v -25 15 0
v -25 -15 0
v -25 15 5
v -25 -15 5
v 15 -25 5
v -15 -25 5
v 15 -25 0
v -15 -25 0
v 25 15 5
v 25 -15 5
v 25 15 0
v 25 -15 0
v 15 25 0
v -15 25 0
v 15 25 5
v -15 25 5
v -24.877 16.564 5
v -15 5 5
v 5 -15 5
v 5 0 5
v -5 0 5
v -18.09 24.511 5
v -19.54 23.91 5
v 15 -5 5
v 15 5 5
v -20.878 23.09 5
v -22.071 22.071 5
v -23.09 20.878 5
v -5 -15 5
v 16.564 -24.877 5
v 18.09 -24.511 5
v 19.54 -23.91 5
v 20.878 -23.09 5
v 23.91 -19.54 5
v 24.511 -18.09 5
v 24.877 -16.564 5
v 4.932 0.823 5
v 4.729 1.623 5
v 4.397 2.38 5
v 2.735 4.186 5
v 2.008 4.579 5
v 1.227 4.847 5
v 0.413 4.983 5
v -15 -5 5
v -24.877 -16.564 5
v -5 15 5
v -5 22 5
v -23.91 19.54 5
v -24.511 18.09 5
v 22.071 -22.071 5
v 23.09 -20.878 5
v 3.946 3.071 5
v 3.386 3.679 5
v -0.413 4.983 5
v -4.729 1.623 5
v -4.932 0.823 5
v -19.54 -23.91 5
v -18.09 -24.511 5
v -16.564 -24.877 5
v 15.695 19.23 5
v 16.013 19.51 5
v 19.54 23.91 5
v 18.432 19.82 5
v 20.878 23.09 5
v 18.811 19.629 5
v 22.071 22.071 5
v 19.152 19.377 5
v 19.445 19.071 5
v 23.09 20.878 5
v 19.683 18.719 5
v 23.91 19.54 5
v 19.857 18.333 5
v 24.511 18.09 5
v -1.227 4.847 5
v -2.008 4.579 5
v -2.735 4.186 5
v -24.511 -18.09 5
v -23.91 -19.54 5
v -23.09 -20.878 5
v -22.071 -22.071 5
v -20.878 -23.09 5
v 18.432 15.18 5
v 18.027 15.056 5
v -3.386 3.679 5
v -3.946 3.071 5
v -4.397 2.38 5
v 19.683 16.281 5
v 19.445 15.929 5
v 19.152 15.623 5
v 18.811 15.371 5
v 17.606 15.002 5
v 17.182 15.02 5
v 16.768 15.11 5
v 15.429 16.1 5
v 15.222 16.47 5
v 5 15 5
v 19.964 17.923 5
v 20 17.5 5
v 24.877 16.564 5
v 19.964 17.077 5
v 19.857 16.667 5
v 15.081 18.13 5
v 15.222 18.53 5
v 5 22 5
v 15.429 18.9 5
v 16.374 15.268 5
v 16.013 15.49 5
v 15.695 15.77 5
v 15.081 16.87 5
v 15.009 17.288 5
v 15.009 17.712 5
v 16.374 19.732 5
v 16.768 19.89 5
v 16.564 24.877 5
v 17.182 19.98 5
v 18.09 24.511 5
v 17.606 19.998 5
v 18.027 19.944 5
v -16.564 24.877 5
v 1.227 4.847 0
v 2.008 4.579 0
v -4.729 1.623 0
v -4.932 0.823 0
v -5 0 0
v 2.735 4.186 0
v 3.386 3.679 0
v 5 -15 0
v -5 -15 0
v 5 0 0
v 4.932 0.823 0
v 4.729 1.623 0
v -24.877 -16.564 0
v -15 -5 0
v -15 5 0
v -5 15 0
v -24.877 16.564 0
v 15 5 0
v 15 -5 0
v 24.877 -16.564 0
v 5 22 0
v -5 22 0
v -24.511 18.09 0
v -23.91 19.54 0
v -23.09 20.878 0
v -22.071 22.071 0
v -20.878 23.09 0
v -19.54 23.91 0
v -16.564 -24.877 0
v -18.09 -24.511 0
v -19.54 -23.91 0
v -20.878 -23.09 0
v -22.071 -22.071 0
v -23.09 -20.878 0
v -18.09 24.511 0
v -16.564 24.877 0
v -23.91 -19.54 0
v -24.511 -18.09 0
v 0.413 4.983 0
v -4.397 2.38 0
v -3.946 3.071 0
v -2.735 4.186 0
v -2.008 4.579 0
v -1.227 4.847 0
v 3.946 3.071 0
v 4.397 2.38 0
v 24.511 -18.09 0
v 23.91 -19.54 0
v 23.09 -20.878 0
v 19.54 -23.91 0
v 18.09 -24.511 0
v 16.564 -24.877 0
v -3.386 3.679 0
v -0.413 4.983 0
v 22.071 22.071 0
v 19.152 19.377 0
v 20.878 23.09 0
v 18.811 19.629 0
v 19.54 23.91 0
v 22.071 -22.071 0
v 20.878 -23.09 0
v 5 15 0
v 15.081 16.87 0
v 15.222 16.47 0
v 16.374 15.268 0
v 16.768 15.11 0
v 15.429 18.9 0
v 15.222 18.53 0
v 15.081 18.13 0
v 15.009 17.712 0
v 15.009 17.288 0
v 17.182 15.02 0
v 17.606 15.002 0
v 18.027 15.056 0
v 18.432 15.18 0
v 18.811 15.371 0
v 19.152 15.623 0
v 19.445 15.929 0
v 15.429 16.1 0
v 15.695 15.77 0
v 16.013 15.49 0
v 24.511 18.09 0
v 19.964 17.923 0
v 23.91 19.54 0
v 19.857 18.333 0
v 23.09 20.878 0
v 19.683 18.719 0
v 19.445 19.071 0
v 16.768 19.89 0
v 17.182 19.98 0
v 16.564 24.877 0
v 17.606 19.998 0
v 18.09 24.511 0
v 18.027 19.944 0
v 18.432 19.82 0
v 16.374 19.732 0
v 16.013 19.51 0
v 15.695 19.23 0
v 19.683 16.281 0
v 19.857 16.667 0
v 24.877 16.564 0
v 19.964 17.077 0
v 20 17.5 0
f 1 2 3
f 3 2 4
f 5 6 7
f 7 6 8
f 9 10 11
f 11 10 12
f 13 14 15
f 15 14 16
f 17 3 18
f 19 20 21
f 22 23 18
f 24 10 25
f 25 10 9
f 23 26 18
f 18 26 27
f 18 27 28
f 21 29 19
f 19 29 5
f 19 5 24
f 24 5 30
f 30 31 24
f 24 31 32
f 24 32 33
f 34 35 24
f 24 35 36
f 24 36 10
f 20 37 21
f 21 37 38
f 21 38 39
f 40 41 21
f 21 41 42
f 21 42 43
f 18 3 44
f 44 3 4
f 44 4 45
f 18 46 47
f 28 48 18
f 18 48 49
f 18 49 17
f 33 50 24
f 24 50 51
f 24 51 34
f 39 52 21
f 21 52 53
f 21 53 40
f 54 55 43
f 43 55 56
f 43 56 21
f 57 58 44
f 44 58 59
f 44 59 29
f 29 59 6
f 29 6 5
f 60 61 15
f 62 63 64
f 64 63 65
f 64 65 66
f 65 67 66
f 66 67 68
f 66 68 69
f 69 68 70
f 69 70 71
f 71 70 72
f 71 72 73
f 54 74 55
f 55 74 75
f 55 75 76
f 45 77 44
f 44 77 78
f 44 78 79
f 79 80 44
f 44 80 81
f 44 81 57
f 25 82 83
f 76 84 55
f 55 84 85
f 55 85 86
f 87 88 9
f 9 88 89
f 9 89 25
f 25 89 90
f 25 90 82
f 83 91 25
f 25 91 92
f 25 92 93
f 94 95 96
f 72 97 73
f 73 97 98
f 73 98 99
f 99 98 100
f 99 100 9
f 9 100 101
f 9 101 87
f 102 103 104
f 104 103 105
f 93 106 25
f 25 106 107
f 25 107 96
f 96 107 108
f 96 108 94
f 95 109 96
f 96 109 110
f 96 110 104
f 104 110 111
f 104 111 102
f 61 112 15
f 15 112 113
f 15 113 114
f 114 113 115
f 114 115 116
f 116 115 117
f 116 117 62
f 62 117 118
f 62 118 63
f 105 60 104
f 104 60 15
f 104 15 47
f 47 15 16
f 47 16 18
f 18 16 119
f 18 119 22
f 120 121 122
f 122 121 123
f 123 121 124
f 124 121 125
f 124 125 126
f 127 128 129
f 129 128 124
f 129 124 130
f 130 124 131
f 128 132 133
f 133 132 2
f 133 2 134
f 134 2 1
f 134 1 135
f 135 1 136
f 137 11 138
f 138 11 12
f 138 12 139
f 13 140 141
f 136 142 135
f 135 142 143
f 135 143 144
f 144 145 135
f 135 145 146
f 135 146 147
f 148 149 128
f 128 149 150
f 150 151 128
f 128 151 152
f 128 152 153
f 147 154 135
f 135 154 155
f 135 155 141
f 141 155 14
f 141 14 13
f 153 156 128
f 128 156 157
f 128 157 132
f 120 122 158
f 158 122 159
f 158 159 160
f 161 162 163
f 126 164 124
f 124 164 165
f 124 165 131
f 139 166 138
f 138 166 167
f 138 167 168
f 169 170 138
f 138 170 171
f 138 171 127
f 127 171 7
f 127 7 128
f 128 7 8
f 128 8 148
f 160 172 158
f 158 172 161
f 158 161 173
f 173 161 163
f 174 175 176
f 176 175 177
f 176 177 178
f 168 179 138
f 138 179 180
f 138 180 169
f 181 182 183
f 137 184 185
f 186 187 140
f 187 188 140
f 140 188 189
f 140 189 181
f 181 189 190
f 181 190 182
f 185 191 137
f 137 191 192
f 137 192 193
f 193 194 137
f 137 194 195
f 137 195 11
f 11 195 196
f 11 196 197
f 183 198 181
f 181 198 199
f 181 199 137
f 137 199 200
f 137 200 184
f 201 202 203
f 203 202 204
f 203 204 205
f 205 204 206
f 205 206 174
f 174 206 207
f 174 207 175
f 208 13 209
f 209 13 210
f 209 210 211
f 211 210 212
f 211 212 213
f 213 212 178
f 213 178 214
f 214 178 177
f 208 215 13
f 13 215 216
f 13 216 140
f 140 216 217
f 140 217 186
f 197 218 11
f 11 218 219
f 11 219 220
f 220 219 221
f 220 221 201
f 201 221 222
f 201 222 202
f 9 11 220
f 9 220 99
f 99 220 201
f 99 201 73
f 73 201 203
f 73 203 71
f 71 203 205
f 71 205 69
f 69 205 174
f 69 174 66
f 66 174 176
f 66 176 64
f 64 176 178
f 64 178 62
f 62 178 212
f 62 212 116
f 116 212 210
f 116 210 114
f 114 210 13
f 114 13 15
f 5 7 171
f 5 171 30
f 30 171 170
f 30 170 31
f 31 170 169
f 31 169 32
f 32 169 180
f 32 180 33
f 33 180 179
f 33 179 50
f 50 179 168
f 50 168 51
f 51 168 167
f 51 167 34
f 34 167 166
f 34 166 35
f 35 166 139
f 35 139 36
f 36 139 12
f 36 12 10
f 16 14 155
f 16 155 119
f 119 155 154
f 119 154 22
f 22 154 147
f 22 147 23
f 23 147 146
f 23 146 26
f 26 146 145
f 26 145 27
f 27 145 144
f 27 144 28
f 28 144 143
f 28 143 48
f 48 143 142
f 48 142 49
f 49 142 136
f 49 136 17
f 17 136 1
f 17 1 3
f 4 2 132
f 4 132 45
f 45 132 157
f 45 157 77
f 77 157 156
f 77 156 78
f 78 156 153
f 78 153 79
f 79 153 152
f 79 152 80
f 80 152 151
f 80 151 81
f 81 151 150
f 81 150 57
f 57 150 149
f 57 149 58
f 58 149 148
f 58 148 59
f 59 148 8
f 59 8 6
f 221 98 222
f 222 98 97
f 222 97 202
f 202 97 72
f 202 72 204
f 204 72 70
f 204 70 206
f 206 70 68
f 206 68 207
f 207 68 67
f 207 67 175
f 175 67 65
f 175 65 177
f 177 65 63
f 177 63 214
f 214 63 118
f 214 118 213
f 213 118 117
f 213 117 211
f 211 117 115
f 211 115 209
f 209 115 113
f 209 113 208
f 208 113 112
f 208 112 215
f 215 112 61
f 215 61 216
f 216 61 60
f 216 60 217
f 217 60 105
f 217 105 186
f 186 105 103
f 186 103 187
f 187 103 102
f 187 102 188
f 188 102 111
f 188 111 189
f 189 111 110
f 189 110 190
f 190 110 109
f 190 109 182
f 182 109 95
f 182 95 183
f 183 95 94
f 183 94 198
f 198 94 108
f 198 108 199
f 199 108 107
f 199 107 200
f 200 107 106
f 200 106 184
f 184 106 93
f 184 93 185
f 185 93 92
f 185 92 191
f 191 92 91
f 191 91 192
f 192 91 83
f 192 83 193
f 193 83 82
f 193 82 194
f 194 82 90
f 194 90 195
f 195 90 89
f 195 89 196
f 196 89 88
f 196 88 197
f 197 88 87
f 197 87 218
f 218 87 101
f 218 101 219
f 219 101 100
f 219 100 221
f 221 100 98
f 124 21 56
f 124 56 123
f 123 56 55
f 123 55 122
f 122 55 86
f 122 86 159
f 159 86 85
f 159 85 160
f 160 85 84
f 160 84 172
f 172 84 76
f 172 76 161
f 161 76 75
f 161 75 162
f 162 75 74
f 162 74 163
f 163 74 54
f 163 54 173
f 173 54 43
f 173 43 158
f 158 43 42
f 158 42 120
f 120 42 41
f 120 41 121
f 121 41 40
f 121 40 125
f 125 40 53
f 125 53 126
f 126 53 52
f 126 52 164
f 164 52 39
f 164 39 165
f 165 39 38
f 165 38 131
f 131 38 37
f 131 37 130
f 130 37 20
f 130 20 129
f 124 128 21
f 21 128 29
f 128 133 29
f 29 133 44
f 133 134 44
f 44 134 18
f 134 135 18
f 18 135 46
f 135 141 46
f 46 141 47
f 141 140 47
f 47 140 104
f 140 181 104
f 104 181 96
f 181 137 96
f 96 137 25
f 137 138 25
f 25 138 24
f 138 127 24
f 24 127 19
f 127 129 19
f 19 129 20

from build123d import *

# Parameters (mm, degrees)
SKETCH2_W           = 50
SKETCH2_H           = 50
BOSS_EXTRUDE1_DEPTH = 5
FILLET1_R           = 10
SKETCH3_R           = 2.5
CUT_EXTRUDE1_DEPTH  = 6


with BuildPart() as part:
    # Sketch2 → Boss-Extrude1 (new body)
    with BuildSketch(Plane.XY):
        Rectangle(SKETCH2_W, SKETCH2_H)
    extrude(amount=BOSS_EXTRUDE1_DEPTH)

    # Fillet1
    fillet1_edges = [part.edges().sort_by_distance(p)[0] for p in [
        (-25, 25, 2.5),
        (25, 25, 2.5),
        (25, -25, 2.5),
        (-25, -25, 2.5),
    ]]
    fillet(fillet1_edges, radius=FILLET1_R)

    # Sketch3 → Cut-Extrude1 (cut, through all)
    with BuildSketch(Plane.XY.offset(5)):
        with Locations((17.5, 17.5)):
            Circle(SKETCH3_R)
        with BuildLine():
            Line((-5, 0), (-5, -15))
            Line((-5, -15), (-15, -5))
            Line((-15, -5), (-15, 5))
            Line((-15, 5), (-5, 15))
            Line((-5, 15), (-5, 22))
            Line((-5, 22), (5, 22))
            Line((5, 22), (5, 15))
            Line((5, 15), (15, 5))
            Line((15, 5), (15, -5))
            Line((15, -5), (5, -15))
            Line((5, -15), (5, 0))
            ThreePointArc((5, 0), (0, 5), (-5, 0))
        make_face()
    extrude(amount=-CUT_EXTRUDE1_DEPTH, mode=Mode.SUBTRACT)


solid = part.part
